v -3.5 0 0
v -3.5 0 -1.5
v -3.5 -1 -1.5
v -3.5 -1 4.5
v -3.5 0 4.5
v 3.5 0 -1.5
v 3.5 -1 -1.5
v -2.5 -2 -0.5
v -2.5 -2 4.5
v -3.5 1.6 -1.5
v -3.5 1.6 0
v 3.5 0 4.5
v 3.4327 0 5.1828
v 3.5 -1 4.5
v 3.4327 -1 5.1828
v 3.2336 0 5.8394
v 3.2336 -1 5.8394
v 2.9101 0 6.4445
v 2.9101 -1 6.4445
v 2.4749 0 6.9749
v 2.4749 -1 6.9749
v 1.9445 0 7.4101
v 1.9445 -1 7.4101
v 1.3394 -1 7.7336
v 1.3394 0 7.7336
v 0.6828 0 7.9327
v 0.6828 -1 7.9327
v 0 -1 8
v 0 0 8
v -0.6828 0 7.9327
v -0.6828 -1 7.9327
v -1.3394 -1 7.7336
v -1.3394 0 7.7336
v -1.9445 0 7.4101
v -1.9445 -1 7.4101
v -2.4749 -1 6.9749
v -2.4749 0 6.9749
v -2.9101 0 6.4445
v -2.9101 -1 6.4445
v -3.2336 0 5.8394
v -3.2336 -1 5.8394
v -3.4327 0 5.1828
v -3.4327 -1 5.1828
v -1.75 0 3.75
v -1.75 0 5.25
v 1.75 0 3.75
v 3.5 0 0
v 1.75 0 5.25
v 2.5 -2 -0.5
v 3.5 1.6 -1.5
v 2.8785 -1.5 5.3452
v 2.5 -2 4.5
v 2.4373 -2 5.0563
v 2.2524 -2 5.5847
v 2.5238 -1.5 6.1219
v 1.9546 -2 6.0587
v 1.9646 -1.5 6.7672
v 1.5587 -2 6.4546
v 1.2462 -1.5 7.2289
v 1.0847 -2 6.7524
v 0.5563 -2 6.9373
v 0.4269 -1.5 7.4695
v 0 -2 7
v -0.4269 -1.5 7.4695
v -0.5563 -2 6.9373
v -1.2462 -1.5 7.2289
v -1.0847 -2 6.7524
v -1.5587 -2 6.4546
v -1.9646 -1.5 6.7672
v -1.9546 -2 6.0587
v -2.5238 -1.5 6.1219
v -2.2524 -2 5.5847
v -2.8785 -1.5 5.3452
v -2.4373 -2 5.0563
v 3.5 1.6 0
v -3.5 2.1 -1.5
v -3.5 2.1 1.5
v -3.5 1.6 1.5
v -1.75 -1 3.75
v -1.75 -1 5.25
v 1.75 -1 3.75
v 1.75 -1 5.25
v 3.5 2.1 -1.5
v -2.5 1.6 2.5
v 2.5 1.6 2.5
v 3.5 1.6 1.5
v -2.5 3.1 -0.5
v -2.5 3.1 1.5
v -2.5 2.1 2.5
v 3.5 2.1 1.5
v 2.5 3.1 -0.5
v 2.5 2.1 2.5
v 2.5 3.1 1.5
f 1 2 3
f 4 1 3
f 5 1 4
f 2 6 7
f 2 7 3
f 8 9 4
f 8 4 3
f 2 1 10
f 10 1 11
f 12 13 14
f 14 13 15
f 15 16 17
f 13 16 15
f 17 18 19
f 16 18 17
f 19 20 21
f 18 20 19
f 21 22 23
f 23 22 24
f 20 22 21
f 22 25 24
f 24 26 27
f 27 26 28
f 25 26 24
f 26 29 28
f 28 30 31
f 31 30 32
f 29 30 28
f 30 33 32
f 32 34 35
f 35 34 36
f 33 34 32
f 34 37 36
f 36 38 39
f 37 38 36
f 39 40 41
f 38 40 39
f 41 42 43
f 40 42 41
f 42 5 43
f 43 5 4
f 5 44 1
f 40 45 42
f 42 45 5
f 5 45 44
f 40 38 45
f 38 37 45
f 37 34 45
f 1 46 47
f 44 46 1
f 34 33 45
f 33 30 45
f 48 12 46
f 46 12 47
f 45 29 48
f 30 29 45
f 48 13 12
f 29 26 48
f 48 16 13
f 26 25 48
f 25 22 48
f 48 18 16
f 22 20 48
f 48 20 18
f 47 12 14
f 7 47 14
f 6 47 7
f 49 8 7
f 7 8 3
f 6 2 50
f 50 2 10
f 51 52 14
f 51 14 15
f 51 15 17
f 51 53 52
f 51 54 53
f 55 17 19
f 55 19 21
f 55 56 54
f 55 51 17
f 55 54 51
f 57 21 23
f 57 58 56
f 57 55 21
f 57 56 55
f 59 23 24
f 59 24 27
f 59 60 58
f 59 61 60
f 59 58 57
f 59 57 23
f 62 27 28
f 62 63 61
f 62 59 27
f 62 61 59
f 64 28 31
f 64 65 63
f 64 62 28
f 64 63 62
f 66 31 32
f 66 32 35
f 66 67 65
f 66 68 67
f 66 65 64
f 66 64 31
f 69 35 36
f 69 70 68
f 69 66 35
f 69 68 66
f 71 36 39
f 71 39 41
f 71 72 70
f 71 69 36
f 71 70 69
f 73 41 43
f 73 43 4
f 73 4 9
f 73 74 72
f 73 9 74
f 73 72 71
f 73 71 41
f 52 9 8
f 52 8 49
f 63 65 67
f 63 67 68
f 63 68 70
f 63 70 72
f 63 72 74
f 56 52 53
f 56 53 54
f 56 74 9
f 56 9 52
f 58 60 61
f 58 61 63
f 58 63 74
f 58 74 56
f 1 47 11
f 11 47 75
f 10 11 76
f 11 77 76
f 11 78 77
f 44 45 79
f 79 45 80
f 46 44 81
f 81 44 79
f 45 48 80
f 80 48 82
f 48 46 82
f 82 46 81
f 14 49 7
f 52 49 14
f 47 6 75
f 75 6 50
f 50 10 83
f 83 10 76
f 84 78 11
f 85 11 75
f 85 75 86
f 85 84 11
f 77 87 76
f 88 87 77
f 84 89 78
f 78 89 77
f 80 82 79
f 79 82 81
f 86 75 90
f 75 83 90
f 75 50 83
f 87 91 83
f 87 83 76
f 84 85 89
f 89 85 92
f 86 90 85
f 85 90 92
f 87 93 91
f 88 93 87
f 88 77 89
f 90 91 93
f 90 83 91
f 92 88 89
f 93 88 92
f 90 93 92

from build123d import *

# Parameters (mm, degrees)
PAD_DEPTH            = 2
SKETCH001_W          = 3.5
SKETCH001_H          = 1.5
POCKET_DEPTH         = 1
SKETCH002_W          = 7
SKETCH002_H          = 1.5
PAD001_DEPTH         = 1.6
SKETCH003_W          = 7
SKETCH003_H          = 4
PAD002_DEPTH         = 1.5
CHAMFER_SIZE         = 1
CHAMFER001_SIZE      = 1
BODY_PLACEMENT_ANGLE = 90


with BuildPart() as part:
    # Sketch (on XY_Plane of Origin) → Pad (new body)
    with BuildSketch(Plane.XY):
        with BuildLine():
            Line((-3.5, -1.5), (-3.5, 4.5))
            ThreePointArc((3.5, 4.5), (0, 8), (-3.5, 4.5))
            Line((3.5, 4.5), (3.5, -1.5))
            Line((3.5, -1.5), (-3.5, -1.5))
        make_face()
    extrude(amount=PAD_DEPTH)

    # Sketch001 (on Face5 of Pad) → Pocket (cut)
    with BuildSketch(Plane(origin=(0, 0, 0), x_dir=(1, 0, 0), z_dir=(0, 0, -1))):
        with Locations((0, -4.5)):
            Rectangle(SKETCH001_W, SKETCH001_H)
    extrude(amount=-POCKET_DEPTH, mode=Mode.SUBTRACT)

    # Sketch002 (on Face4 of Pocket) → Pad001 (join)
    with BuildSketch(Plane(origin=(0, 0, 0), x_dir=(1, 0, 0), z_dir=(0, 0, -1))):
        with Locations((0, 0.75)):
            Rectangle(SKETCH002_W, SKETCH002_H)
    extrude(amount=PAD001_DEPTH)

    # Sketch003 (on Face10 of Pad001) → Pad002 (join)
    with BuildSketch(Plane(origin=(0, 0, -1.6), x_dir=(1, 0, 0), z_dir=(0, 0, -1))):
        with Locations((0, -0.5)):
            Rectangle(SKETCH003_W, SKETCH003_H)
    extrude(amount=PAD002_DEPTH)

    # Chamfer
    chamfer_edges = [part.edges().sort_by_distance(p)[0] for p in [
        (0, -1.5, -3.1),
        (-3.5, 0.5, -3.1),
        (3.5, 0.5, -3.1),
        (0, 2.5, -3.1),
        (-3.5, 2.5, -2.35),
        (3.5, 2.5, -2.35),
    ]]
    chamfer(chamfer_edges, length=CHAMFER_SIZE)

    # Chamfer001
    chamfer001_edges = [part.edges().sort_by_distance(p)[0] for p in [
        (0, 8, 2),
        (0, -1.5, 2),
    ]]
    chamfer(chamfer001_edges, length=CHAMFER001_SIZE)


with BuildPart() as part_1:
    # Body placement: moved
    add(part.part.rotate(Axis((0, 0, 0), (1, 0, 0)), BODY_PLACEMENT_ANGLE))


solid = part_1.part
